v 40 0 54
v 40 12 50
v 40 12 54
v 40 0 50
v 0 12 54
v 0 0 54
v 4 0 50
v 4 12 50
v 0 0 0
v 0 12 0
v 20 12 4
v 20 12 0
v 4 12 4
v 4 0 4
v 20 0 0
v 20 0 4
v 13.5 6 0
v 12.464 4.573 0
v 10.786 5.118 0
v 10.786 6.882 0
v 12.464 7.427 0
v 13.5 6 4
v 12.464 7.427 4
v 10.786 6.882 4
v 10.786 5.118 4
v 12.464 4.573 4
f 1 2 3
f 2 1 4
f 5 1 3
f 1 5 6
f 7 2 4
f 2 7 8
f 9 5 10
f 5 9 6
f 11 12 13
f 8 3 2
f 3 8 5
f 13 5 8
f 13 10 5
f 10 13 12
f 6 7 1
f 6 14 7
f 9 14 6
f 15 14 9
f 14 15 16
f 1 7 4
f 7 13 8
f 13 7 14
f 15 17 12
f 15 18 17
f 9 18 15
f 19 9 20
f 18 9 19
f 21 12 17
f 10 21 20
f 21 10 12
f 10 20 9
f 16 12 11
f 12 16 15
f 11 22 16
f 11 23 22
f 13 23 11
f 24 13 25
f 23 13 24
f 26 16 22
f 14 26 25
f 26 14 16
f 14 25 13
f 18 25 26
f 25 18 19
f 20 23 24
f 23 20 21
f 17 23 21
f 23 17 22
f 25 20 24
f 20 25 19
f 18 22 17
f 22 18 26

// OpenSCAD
thickness = 4;
difference(){
union(){
translate([0,0,50]) cube([40,12,thickness]);
translate([0,0,0]) cube([thickness,12,50]);
translate([0,0,0]) cube([20,12,thickness]);
}
#translate([12,6,-10]) cylinder(d=3,h=20);
}
